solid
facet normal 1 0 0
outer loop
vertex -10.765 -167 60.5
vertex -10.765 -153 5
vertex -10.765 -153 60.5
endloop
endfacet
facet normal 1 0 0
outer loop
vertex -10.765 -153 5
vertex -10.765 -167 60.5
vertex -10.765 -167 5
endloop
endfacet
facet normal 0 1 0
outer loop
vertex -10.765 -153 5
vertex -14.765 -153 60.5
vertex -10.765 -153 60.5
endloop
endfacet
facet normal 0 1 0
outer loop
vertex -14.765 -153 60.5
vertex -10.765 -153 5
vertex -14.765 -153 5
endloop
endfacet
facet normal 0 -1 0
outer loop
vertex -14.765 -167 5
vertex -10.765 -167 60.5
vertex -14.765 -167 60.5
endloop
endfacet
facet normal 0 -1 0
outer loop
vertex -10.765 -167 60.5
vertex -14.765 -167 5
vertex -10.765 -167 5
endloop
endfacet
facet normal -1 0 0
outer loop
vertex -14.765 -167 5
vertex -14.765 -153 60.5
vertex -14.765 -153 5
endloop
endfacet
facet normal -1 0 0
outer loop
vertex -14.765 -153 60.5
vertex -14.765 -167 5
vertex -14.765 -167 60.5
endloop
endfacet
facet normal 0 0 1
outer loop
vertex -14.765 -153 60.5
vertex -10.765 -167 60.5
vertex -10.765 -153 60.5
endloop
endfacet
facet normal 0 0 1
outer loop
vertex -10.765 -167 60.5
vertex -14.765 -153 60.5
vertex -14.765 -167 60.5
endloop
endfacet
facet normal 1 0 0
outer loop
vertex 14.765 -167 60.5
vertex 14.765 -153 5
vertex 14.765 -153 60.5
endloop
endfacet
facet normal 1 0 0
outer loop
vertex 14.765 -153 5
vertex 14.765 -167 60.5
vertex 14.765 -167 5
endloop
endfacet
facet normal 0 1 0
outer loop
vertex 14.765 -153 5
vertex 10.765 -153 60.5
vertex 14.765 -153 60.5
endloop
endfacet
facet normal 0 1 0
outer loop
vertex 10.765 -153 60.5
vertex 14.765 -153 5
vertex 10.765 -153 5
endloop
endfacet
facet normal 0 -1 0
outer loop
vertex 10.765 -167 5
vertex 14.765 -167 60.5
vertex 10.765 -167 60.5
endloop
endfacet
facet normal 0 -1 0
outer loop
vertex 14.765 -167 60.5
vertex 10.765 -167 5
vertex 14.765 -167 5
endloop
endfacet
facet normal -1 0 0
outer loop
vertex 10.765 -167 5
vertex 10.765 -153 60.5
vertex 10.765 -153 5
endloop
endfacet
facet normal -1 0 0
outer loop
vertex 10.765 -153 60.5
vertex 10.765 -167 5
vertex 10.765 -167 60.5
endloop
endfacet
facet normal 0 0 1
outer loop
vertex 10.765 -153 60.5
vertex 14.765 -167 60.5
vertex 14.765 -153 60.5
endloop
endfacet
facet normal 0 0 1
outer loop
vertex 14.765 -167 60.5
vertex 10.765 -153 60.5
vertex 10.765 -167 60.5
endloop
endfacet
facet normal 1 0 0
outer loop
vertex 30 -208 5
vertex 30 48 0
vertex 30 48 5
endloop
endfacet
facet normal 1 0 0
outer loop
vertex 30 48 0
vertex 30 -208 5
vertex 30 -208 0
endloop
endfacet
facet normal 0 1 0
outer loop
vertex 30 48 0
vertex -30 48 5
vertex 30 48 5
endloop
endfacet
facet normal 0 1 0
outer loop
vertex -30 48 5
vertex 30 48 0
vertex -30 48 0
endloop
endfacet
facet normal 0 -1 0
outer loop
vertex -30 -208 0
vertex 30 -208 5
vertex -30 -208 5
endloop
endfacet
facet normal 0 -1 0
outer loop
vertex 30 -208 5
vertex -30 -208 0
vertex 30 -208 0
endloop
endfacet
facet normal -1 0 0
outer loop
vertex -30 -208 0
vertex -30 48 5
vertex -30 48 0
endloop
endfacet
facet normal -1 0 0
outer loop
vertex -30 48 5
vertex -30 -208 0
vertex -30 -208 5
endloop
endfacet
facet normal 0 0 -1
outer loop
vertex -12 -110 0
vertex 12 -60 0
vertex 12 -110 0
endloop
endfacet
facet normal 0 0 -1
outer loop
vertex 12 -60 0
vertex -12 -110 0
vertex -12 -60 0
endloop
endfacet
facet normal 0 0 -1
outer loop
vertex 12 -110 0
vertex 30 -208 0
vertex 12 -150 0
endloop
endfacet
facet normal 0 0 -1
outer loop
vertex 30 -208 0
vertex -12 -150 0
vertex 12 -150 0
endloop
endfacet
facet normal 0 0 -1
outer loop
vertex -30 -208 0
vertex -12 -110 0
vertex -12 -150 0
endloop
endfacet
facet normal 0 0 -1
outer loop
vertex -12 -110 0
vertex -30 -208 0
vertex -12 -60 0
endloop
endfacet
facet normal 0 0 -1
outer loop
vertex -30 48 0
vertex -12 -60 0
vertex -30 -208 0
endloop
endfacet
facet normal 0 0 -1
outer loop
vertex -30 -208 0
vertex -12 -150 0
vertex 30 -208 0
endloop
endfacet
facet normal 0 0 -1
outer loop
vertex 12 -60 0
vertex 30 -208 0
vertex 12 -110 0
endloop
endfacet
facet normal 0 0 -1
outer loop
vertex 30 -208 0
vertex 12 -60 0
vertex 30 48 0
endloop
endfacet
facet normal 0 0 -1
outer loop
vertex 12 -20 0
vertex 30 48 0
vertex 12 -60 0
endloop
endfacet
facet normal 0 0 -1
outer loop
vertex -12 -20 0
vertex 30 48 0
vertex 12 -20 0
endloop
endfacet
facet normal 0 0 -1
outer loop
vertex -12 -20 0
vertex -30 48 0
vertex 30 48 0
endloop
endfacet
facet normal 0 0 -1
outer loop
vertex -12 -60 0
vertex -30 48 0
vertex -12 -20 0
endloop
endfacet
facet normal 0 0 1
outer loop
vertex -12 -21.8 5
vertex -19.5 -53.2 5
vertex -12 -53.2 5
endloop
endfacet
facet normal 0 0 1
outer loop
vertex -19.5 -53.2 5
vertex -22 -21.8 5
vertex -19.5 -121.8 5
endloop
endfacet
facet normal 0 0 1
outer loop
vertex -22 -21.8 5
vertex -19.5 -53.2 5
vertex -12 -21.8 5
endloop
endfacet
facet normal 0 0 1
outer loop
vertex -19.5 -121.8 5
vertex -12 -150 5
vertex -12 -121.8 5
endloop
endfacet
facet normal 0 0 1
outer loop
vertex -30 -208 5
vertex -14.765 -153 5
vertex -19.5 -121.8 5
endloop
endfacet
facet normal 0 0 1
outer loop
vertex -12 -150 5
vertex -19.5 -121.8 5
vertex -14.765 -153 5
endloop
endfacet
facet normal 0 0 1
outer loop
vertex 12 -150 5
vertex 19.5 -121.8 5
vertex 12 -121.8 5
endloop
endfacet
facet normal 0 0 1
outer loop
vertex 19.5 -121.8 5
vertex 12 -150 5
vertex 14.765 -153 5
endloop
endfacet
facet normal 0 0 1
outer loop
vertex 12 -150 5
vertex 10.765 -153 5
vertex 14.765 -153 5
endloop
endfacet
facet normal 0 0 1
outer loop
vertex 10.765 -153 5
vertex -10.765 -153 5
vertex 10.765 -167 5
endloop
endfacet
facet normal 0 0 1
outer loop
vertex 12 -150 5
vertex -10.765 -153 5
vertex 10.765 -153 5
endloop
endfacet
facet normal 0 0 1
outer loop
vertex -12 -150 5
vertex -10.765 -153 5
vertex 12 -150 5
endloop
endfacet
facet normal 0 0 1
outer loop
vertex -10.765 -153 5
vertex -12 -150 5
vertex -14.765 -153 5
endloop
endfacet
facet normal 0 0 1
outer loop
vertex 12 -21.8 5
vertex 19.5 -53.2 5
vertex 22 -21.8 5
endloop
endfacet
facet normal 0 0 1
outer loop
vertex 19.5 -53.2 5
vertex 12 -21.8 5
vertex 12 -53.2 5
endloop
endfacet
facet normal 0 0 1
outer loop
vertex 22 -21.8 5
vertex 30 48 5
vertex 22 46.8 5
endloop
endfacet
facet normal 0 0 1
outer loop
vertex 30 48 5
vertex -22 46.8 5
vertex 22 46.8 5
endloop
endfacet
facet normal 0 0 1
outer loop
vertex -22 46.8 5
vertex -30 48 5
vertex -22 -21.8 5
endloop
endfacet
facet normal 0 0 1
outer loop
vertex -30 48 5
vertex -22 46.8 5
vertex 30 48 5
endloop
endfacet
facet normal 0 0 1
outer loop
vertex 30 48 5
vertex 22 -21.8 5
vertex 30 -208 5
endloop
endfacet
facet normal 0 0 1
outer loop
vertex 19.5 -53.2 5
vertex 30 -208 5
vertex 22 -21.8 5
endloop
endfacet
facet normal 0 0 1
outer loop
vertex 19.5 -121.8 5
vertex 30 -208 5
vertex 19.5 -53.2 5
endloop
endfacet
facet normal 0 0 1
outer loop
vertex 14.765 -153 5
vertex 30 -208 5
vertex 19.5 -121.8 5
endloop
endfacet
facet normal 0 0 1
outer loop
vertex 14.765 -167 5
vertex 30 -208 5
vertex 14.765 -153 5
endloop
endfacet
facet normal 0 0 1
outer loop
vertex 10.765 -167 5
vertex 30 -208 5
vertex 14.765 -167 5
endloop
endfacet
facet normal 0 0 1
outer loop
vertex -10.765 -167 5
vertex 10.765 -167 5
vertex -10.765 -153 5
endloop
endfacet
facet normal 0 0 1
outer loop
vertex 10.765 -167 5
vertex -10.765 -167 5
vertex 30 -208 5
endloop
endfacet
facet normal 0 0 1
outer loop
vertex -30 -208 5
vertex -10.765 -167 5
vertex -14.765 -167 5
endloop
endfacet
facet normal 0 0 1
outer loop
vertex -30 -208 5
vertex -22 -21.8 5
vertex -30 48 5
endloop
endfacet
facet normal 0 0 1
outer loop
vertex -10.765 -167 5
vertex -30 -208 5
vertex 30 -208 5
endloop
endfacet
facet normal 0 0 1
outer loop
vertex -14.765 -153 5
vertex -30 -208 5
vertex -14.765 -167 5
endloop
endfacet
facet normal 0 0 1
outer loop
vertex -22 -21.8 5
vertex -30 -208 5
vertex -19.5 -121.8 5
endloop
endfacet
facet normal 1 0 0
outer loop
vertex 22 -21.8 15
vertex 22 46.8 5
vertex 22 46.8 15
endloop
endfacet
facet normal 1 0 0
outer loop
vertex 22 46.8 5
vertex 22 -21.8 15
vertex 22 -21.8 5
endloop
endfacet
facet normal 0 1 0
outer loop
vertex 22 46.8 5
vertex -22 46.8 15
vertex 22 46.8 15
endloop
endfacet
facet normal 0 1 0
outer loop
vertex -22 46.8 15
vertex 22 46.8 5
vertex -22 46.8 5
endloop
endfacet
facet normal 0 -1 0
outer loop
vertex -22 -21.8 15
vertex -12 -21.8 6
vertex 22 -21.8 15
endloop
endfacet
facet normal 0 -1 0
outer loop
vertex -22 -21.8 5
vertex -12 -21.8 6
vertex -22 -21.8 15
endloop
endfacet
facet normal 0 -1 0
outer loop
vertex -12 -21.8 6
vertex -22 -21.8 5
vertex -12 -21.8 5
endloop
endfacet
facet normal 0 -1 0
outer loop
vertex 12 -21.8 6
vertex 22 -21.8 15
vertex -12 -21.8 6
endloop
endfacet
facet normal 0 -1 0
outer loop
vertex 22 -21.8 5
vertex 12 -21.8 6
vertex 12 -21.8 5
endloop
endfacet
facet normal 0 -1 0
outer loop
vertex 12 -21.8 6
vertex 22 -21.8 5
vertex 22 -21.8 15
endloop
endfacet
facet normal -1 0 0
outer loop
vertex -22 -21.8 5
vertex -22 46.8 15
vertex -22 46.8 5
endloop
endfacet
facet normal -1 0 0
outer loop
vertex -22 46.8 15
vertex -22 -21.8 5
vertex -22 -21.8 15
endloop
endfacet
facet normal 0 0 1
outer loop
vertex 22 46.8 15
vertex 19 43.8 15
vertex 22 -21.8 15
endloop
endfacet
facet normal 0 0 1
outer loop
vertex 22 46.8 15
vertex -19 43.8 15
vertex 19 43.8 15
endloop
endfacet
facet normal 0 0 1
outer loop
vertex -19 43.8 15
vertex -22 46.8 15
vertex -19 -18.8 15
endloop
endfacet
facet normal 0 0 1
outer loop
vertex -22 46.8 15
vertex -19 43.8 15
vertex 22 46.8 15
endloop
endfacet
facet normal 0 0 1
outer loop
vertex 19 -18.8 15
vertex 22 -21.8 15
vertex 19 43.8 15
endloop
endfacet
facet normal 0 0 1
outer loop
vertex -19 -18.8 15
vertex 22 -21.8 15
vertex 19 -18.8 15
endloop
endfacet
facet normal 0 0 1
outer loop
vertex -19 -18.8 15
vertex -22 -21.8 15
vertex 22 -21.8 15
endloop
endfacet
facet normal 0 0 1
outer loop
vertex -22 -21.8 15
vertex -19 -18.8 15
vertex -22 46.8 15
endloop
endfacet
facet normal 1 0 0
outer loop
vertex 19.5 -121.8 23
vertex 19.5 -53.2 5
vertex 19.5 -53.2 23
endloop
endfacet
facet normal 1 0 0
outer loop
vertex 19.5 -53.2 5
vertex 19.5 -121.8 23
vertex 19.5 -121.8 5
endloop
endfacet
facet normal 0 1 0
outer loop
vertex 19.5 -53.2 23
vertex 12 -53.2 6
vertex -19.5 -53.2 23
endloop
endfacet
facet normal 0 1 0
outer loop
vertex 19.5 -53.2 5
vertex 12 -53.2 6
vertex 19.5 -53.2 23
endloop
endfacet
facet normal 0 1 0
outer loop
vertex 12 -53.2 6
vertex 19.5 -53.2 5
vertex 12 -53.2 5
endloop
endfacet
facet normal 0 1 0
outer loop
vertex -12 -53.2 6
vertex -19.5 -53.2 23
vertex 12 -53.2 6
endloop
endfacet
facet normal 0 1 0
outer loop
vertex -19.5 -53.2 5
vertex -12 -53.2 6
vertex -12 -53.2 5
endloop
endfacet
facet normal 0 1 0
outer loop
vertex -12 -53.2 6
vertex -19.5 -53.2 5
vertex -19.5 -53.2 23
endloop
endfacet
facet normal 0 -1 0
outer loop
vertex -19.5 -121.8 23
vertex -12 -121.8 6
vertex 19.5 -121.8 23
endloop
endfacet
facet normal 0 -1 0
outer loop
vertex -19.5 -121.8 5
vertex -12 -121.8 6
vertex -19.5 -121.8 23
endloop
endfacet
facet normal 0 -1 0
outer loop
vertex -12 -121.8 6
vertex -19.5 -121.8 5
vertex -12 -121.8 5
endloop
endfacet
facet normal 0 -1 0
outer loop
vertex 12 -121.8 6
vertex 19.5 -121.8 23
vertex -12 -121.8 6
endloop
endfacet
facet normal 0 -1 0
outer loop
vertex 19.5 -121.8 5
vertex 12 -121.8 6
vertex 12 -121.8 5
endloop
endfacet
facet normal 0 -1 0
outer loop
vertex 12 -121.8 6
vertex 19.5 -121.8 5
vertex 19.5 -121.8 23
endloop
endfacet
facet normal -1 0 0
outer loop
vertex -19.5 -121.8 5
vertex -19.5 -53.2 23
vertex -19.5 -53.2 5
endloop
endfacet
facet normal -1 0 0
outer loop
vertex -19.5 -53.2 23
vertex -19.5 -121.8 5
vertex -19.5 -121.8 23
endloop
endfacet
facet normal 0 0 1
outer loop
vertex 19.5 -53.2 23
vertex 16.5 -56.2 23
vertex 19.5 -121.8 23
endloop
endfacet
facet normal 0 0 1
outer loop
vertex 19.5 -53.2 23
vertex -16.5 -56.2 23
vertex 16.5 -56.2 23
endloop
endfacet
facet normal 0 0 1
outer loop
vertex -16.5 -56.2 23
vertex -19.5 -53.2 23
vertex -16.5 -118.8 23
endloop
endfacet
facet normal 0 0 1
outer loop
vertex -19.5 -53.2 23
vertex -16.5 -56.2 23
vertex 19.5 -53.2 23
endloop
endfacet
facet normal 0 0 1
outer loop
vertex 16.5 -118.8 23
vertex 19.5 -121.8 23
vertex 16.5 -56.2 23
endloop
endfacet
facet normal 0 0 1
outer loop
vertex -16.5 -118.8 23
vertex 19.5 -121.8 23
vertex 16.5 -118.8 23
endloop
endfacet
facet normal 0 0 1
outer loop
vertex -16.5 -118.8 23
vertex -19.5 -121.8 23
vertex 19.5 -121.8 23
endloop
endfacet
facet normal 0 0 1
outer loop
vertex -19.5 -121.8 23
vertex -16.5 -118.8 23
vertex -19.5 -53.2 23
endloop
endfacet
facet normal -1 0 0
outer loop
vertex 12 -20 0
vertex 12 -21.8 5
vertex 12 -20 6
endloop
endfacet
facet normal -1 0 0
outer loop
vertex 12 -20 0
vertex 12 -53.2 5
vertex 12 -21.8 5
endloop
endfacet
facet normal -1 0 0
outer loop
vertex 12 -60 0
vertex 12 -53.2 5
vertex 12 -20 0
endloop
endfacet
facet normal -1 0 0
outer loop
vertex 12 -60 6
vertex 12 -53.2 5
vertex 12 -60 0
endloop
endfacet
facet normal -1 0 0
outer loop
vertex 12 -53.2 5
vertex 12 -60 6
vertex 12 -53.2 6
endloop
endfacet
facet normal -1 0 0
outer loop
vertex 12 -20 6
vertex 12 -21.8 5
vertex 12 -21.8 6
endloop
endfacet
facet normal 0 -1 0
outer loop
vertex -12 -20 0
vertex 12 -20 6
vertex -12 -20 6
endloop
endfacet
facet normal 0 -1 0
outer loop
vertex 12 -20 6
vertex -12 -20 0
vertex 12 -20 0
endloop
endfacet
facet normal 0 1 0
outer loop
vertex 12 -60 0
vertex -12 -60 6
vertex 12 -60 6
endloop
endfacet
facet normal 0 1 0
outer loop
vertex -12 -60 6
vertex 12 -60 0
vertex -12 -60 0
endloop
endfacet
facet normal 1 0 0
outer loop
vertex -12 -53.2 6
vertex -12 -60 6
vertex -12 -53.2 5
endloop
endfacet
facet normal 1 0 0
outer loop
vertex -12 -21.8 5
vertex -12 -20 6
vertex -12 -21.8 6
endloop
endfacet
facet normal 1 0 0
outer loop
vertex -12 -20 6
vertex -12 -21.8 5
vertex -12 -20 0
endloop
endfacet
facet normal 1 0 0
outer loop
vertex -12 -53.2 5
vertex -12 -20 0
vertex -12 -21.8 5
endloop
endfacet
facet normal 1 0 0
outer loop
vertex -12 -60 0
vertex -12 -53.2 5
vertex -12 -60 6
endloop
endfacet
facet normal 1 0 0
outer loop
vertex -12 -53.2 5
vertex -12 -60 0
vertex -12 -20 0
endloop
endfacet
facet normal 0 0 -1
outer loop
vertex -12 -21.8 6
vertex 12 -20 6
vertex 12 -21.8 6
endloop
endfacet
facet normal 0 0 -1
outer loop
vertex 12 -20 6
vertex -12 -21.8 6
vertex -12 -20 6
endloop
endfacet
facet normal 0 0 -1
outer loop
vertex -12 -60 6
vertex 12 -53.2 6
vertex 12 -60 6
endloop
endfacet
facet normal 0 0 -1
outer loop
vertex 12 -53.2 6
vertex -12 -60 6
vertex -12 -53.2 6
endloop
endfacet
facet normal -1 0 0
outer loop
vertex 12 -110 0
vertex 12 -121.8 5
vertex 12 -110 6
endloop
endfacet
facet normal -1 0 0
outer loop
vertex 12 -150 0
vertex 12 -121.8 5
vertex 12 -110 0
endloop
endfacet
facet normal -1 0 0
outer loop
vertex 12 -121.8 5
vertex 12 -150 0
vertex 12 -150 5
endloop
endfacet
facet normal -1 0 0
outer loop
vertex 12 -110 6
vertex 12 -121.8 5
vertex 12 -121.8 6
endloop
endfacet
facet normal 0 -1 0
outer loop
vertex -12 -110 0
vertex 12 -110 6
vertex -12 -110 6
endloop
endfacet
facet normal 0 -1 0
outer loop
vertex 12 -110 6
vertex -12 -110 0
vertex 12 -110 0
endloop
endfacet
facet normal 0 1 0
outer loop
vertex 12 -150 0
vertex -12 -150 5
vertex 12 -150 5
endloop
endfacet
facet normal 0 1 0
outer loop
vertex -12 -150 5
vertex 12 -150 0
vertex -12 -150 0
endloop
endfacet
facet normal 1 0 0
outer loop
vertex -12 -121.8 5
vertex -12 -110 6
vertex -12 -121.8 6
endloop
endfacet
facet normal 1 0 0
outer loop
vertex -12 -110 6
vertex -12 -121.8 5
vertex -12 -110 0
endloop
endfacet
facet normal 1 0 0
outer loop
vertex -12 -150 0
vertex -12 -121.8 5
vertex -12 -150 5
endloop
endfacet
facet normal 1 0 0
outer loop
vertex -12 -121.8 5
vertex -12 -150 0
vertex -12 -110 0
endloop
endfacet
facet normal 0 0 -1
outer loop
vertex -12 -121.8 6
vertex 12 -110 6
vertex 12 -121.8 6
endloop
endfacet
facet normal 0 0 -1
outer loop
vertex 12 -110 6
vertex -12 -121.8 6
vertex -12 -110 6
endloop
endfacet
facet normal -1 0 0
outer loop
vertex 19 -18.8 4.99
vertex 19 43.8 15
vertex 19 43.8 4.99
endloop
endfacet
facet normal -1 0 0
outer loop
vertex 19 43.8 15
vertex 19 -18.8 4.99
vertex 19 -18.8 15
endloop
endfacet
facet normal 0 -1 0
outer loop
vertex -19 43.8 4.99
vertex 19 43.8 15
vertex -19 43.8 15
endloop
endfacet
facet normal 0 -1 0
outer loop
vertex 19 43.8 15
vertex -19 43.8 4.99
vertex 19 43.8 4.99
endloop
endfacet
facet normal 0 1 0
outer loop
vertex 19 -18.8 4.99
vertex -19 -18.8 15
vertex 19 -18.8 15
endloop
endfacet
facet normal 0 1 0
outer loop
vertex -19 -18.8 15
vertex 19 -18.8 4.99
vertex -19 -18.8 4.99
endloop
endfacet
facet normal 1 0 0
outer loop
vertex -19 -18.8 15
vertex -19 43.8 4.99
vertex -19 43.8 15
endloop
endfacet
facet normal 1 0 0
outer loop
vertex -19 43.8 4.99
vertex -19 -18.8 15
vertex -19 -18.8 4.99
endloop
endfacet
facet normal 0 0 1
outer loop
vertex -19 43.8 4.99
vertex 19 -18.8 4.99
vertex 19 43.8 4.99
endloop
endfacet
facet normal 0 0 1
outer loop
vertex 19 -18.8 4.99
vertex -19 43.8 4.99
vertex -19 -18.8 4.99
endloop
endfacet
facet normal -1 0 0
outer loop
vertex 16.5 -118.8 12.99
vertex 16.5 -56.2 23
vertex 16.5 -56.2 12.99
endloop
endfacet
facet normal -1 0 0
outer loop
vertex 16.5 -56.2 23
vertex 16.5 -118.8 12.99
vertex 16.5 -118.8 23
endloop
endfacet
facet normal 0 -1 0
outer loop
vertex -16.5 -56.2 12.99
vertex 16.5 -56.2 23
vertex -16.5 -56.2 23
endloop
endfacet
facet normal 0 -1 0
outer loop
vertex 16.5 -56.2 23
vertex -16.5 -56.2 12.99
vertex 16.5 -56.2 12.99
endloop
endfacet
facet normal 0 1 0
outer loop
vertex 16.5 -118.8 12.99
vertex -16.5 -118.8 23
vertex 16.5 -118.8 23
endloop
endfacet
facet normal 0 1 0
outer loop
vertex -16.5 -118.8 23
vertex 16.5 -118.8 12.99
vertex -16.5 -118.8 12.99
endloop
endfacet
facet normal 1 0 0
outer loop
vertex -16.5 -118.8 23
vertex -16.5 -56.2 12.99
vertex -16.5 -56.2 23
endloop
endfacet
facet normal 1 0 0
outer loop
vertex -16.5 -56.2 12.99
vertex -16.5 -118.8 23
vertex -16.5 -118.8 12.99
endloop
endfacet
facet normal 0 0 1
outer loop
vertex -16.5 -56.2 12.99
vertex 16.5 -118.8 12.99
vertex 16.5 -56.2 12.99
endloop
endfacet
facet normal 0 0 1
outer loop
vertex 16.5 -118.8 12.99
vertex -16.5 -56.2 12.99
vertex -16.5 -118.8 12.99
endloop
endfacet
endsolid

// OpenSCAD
// file: ../params.scad
// =====================================================================
//  Pip v2 — assembly-first robot dog. Shared parameters (mm).
//  Design rules: docs/ASSEMBLY_FIRST_DESIGN.md §3. Every part is built
//  by straight-down moves; the precision lives in the parts.
//  Keep in sync with software/config.yaml (tests/test_cad_sync.py checks).
// =====================================================================
$fn = 64;

// ---------- Feetech STS3215 bus servo (12 V, 30 kg·cm) ------------------
// Measured from the SO-ARM100 project's STS3215 model. Servo frame used
// below: origin = output axis on the case top face, +Z = shaft, +X = long
// axis from the shaft toward the far end of the case.
servo_len       = 45.4;
servo_wid       = 24.8;
servo_case_h    = 32.0;   // top face -> case bottom
servo_bottom    = 4.0;    // rear idler disc + connector pins below the case
servo_shaft_off = 10.2;   // shaft centre -> near end of the case
horn_d          = 20.0;   // aluminium disc horn
horn_t          = 1.6;
horn_hole_sq    = 9.9;    // 4 tapped M3 holes on a 9.9 mm square
horn_screw_clear_d = 7.0; // centre spline-screw head clearance
servo_mass_g    = 55;     // assumed (not measured)

// ---------- one fastener for everything: M3 x 8 socket head -----------
screw_len   = 8;
m3_clear    = 3.4;
m3_pilot    = 2.6;        // self-tapping an M3 machine screw into PETG
fit         = 0.3;        // clearance around servo cases & docks
lead_in     = 1.5;        // chamfer on every mating edge (capture range)

// ---------- servo cup (the one standard servo holder) ------------------
cup_side    = 3.5;
cup_end     = 8.0;        // end walls carry the cap screws
cup_floor   = 2.5;
cup_depth   = servo_case_h + servo_bottom + cup_floor;     // 38.5
cup_x0      = -servo_shaft_off - fit - cup_end;            // -18.5
cup_x1      = servo_len - servo_shaft_off + fit + cup_end; //  43.5
cup_hw      = servo_wid / 2 + fit + cup_side;              //  16.2
cap_t       = 1.2;        // thinner than the horn so links clear it
cap_screw_x = [cup_x0 + cup_end / 2, cup_x1 - cup_end / 2];
cap_screw_y = 9;

// link plates bolt straight onto the horn: plate + horn = screw length
link_t      = screw_len - horn_t;                          // 6.4

// ---------- grip lug (rule 7): flats 20 mm apart + 3 mm datum notch ----
lug_w = 20; lug_h = 8; datum = 3;

// ---------- body / leg layout (body frame: X fwd, Y left, Z up) -------
bx        = 95;    // hip axis X (front +, rear -)
rim_y     = 45;    // |Y| of the pitch servo top face = tray side face
L2        = 100;   // hip axis -> knee axis
L3        = 100;   // knee axis -> foot ball centre
foot_d    = 22;
// lateral stack, measured outward from the pitch-servo top face
upper_in  = rim_y + horn_t;            // 46.6
upper_out = upper_in + link_t;         // 53.0 = knee servo top face
lower_in  = upper_out + horn_t;        // 54.6
lower_out = lower_in + link_t;         // 61.0
foot_y    = (lower_in + lower_out) / 2;// 57.8  (software: geometry.foot_y)

// tray
tray_wall   = 3;
tray_floor  = 3;
tray_z0     = cup_x0 - tray_floor;     // -21.5 (hip block bottom = floor top)
tray_z1     = cup_x1;                  //  43.5 (hip block top = deck bottom)
sock_wall   = 3;
sock_hw     = cup_hw + fit;            // socket half width in X
tongue_w    = 5; tongue_d = 2.5;
tongue_y    = -(rim_y - cup_depth / 2);// tongue centre (Y, right side)
sock_in_y   = -(rim_y - cup_depth) + fit;   // socket inboard wall inner face
tray_hx     = bx + sock_hw + tongue_d + sock_wall + 0.5;
deck_t      = 3;

// neck: pan servo cup built into the tray, rim just above the deck
pan_x     = 53;
pan_rim_z = tray_z1 + deck_t + 0.1;    // 46.6
bracket_z0 = pan_rim_z + horn_t;       // pan bracket sits on the horn
bracket_z1 = bracket_z0 + link_t;
// tilt servo stands upright in a sleeve on the bracket, shaft -> -Y
tilt_top_y = -14;                      // tilt servo top face (Y)
tilt_rest  = 3.5;                      // servo rests on ribs clear of the pan-horn screw heads
tilt_z     = bracket_z1 + tilt_rest + fit + (servo_len - servo_shaft_off); // tilt axis Z
sleeve_wall = 6;                       // thick X walls take the cap screws

echo(str("foot_y=", foot_y, "  tray=", 2*tray_hx, " x ", 2*rim_y,
         "  tilt axis z=", tilt_z));
// main file
// Print 1x. Assembly + calibration fixture for the leg modules. Flat, no supports.
include <../lib.scad>
translate([-bx, 0, -((rim_y - cup_depth) - 5)]) rotate([-90, 0, 0]) leg_jig();
